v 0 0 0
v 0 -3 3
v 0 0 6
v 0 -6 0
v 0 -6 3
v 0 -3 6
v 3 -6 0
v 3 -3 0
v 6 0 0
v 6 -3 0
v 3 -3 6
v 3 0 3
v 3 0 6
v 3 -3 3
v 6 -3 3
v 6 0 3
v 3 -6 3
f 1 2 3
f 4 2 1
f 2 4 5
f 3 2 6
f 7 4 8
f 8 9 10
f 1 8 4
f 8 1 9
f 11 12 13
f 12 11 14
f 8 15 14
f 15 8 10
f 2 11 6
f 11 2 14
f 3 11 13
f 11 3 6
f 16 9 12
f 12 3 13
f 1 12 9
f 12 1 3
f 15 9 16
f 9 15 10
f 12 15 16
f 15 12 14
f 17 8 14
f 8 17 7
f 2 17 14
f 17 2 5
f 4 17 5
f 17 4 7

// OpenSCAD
module baustein4(){
    union(){
        cube([3,3,6]);
        translate([3,0,3])
            cube([3,3,3]);
        translate([0,3,3])
            cube([3,3,3]);
        }
}
rotate([180,0,0])
translate([0,0,-6])
    baustein4();
